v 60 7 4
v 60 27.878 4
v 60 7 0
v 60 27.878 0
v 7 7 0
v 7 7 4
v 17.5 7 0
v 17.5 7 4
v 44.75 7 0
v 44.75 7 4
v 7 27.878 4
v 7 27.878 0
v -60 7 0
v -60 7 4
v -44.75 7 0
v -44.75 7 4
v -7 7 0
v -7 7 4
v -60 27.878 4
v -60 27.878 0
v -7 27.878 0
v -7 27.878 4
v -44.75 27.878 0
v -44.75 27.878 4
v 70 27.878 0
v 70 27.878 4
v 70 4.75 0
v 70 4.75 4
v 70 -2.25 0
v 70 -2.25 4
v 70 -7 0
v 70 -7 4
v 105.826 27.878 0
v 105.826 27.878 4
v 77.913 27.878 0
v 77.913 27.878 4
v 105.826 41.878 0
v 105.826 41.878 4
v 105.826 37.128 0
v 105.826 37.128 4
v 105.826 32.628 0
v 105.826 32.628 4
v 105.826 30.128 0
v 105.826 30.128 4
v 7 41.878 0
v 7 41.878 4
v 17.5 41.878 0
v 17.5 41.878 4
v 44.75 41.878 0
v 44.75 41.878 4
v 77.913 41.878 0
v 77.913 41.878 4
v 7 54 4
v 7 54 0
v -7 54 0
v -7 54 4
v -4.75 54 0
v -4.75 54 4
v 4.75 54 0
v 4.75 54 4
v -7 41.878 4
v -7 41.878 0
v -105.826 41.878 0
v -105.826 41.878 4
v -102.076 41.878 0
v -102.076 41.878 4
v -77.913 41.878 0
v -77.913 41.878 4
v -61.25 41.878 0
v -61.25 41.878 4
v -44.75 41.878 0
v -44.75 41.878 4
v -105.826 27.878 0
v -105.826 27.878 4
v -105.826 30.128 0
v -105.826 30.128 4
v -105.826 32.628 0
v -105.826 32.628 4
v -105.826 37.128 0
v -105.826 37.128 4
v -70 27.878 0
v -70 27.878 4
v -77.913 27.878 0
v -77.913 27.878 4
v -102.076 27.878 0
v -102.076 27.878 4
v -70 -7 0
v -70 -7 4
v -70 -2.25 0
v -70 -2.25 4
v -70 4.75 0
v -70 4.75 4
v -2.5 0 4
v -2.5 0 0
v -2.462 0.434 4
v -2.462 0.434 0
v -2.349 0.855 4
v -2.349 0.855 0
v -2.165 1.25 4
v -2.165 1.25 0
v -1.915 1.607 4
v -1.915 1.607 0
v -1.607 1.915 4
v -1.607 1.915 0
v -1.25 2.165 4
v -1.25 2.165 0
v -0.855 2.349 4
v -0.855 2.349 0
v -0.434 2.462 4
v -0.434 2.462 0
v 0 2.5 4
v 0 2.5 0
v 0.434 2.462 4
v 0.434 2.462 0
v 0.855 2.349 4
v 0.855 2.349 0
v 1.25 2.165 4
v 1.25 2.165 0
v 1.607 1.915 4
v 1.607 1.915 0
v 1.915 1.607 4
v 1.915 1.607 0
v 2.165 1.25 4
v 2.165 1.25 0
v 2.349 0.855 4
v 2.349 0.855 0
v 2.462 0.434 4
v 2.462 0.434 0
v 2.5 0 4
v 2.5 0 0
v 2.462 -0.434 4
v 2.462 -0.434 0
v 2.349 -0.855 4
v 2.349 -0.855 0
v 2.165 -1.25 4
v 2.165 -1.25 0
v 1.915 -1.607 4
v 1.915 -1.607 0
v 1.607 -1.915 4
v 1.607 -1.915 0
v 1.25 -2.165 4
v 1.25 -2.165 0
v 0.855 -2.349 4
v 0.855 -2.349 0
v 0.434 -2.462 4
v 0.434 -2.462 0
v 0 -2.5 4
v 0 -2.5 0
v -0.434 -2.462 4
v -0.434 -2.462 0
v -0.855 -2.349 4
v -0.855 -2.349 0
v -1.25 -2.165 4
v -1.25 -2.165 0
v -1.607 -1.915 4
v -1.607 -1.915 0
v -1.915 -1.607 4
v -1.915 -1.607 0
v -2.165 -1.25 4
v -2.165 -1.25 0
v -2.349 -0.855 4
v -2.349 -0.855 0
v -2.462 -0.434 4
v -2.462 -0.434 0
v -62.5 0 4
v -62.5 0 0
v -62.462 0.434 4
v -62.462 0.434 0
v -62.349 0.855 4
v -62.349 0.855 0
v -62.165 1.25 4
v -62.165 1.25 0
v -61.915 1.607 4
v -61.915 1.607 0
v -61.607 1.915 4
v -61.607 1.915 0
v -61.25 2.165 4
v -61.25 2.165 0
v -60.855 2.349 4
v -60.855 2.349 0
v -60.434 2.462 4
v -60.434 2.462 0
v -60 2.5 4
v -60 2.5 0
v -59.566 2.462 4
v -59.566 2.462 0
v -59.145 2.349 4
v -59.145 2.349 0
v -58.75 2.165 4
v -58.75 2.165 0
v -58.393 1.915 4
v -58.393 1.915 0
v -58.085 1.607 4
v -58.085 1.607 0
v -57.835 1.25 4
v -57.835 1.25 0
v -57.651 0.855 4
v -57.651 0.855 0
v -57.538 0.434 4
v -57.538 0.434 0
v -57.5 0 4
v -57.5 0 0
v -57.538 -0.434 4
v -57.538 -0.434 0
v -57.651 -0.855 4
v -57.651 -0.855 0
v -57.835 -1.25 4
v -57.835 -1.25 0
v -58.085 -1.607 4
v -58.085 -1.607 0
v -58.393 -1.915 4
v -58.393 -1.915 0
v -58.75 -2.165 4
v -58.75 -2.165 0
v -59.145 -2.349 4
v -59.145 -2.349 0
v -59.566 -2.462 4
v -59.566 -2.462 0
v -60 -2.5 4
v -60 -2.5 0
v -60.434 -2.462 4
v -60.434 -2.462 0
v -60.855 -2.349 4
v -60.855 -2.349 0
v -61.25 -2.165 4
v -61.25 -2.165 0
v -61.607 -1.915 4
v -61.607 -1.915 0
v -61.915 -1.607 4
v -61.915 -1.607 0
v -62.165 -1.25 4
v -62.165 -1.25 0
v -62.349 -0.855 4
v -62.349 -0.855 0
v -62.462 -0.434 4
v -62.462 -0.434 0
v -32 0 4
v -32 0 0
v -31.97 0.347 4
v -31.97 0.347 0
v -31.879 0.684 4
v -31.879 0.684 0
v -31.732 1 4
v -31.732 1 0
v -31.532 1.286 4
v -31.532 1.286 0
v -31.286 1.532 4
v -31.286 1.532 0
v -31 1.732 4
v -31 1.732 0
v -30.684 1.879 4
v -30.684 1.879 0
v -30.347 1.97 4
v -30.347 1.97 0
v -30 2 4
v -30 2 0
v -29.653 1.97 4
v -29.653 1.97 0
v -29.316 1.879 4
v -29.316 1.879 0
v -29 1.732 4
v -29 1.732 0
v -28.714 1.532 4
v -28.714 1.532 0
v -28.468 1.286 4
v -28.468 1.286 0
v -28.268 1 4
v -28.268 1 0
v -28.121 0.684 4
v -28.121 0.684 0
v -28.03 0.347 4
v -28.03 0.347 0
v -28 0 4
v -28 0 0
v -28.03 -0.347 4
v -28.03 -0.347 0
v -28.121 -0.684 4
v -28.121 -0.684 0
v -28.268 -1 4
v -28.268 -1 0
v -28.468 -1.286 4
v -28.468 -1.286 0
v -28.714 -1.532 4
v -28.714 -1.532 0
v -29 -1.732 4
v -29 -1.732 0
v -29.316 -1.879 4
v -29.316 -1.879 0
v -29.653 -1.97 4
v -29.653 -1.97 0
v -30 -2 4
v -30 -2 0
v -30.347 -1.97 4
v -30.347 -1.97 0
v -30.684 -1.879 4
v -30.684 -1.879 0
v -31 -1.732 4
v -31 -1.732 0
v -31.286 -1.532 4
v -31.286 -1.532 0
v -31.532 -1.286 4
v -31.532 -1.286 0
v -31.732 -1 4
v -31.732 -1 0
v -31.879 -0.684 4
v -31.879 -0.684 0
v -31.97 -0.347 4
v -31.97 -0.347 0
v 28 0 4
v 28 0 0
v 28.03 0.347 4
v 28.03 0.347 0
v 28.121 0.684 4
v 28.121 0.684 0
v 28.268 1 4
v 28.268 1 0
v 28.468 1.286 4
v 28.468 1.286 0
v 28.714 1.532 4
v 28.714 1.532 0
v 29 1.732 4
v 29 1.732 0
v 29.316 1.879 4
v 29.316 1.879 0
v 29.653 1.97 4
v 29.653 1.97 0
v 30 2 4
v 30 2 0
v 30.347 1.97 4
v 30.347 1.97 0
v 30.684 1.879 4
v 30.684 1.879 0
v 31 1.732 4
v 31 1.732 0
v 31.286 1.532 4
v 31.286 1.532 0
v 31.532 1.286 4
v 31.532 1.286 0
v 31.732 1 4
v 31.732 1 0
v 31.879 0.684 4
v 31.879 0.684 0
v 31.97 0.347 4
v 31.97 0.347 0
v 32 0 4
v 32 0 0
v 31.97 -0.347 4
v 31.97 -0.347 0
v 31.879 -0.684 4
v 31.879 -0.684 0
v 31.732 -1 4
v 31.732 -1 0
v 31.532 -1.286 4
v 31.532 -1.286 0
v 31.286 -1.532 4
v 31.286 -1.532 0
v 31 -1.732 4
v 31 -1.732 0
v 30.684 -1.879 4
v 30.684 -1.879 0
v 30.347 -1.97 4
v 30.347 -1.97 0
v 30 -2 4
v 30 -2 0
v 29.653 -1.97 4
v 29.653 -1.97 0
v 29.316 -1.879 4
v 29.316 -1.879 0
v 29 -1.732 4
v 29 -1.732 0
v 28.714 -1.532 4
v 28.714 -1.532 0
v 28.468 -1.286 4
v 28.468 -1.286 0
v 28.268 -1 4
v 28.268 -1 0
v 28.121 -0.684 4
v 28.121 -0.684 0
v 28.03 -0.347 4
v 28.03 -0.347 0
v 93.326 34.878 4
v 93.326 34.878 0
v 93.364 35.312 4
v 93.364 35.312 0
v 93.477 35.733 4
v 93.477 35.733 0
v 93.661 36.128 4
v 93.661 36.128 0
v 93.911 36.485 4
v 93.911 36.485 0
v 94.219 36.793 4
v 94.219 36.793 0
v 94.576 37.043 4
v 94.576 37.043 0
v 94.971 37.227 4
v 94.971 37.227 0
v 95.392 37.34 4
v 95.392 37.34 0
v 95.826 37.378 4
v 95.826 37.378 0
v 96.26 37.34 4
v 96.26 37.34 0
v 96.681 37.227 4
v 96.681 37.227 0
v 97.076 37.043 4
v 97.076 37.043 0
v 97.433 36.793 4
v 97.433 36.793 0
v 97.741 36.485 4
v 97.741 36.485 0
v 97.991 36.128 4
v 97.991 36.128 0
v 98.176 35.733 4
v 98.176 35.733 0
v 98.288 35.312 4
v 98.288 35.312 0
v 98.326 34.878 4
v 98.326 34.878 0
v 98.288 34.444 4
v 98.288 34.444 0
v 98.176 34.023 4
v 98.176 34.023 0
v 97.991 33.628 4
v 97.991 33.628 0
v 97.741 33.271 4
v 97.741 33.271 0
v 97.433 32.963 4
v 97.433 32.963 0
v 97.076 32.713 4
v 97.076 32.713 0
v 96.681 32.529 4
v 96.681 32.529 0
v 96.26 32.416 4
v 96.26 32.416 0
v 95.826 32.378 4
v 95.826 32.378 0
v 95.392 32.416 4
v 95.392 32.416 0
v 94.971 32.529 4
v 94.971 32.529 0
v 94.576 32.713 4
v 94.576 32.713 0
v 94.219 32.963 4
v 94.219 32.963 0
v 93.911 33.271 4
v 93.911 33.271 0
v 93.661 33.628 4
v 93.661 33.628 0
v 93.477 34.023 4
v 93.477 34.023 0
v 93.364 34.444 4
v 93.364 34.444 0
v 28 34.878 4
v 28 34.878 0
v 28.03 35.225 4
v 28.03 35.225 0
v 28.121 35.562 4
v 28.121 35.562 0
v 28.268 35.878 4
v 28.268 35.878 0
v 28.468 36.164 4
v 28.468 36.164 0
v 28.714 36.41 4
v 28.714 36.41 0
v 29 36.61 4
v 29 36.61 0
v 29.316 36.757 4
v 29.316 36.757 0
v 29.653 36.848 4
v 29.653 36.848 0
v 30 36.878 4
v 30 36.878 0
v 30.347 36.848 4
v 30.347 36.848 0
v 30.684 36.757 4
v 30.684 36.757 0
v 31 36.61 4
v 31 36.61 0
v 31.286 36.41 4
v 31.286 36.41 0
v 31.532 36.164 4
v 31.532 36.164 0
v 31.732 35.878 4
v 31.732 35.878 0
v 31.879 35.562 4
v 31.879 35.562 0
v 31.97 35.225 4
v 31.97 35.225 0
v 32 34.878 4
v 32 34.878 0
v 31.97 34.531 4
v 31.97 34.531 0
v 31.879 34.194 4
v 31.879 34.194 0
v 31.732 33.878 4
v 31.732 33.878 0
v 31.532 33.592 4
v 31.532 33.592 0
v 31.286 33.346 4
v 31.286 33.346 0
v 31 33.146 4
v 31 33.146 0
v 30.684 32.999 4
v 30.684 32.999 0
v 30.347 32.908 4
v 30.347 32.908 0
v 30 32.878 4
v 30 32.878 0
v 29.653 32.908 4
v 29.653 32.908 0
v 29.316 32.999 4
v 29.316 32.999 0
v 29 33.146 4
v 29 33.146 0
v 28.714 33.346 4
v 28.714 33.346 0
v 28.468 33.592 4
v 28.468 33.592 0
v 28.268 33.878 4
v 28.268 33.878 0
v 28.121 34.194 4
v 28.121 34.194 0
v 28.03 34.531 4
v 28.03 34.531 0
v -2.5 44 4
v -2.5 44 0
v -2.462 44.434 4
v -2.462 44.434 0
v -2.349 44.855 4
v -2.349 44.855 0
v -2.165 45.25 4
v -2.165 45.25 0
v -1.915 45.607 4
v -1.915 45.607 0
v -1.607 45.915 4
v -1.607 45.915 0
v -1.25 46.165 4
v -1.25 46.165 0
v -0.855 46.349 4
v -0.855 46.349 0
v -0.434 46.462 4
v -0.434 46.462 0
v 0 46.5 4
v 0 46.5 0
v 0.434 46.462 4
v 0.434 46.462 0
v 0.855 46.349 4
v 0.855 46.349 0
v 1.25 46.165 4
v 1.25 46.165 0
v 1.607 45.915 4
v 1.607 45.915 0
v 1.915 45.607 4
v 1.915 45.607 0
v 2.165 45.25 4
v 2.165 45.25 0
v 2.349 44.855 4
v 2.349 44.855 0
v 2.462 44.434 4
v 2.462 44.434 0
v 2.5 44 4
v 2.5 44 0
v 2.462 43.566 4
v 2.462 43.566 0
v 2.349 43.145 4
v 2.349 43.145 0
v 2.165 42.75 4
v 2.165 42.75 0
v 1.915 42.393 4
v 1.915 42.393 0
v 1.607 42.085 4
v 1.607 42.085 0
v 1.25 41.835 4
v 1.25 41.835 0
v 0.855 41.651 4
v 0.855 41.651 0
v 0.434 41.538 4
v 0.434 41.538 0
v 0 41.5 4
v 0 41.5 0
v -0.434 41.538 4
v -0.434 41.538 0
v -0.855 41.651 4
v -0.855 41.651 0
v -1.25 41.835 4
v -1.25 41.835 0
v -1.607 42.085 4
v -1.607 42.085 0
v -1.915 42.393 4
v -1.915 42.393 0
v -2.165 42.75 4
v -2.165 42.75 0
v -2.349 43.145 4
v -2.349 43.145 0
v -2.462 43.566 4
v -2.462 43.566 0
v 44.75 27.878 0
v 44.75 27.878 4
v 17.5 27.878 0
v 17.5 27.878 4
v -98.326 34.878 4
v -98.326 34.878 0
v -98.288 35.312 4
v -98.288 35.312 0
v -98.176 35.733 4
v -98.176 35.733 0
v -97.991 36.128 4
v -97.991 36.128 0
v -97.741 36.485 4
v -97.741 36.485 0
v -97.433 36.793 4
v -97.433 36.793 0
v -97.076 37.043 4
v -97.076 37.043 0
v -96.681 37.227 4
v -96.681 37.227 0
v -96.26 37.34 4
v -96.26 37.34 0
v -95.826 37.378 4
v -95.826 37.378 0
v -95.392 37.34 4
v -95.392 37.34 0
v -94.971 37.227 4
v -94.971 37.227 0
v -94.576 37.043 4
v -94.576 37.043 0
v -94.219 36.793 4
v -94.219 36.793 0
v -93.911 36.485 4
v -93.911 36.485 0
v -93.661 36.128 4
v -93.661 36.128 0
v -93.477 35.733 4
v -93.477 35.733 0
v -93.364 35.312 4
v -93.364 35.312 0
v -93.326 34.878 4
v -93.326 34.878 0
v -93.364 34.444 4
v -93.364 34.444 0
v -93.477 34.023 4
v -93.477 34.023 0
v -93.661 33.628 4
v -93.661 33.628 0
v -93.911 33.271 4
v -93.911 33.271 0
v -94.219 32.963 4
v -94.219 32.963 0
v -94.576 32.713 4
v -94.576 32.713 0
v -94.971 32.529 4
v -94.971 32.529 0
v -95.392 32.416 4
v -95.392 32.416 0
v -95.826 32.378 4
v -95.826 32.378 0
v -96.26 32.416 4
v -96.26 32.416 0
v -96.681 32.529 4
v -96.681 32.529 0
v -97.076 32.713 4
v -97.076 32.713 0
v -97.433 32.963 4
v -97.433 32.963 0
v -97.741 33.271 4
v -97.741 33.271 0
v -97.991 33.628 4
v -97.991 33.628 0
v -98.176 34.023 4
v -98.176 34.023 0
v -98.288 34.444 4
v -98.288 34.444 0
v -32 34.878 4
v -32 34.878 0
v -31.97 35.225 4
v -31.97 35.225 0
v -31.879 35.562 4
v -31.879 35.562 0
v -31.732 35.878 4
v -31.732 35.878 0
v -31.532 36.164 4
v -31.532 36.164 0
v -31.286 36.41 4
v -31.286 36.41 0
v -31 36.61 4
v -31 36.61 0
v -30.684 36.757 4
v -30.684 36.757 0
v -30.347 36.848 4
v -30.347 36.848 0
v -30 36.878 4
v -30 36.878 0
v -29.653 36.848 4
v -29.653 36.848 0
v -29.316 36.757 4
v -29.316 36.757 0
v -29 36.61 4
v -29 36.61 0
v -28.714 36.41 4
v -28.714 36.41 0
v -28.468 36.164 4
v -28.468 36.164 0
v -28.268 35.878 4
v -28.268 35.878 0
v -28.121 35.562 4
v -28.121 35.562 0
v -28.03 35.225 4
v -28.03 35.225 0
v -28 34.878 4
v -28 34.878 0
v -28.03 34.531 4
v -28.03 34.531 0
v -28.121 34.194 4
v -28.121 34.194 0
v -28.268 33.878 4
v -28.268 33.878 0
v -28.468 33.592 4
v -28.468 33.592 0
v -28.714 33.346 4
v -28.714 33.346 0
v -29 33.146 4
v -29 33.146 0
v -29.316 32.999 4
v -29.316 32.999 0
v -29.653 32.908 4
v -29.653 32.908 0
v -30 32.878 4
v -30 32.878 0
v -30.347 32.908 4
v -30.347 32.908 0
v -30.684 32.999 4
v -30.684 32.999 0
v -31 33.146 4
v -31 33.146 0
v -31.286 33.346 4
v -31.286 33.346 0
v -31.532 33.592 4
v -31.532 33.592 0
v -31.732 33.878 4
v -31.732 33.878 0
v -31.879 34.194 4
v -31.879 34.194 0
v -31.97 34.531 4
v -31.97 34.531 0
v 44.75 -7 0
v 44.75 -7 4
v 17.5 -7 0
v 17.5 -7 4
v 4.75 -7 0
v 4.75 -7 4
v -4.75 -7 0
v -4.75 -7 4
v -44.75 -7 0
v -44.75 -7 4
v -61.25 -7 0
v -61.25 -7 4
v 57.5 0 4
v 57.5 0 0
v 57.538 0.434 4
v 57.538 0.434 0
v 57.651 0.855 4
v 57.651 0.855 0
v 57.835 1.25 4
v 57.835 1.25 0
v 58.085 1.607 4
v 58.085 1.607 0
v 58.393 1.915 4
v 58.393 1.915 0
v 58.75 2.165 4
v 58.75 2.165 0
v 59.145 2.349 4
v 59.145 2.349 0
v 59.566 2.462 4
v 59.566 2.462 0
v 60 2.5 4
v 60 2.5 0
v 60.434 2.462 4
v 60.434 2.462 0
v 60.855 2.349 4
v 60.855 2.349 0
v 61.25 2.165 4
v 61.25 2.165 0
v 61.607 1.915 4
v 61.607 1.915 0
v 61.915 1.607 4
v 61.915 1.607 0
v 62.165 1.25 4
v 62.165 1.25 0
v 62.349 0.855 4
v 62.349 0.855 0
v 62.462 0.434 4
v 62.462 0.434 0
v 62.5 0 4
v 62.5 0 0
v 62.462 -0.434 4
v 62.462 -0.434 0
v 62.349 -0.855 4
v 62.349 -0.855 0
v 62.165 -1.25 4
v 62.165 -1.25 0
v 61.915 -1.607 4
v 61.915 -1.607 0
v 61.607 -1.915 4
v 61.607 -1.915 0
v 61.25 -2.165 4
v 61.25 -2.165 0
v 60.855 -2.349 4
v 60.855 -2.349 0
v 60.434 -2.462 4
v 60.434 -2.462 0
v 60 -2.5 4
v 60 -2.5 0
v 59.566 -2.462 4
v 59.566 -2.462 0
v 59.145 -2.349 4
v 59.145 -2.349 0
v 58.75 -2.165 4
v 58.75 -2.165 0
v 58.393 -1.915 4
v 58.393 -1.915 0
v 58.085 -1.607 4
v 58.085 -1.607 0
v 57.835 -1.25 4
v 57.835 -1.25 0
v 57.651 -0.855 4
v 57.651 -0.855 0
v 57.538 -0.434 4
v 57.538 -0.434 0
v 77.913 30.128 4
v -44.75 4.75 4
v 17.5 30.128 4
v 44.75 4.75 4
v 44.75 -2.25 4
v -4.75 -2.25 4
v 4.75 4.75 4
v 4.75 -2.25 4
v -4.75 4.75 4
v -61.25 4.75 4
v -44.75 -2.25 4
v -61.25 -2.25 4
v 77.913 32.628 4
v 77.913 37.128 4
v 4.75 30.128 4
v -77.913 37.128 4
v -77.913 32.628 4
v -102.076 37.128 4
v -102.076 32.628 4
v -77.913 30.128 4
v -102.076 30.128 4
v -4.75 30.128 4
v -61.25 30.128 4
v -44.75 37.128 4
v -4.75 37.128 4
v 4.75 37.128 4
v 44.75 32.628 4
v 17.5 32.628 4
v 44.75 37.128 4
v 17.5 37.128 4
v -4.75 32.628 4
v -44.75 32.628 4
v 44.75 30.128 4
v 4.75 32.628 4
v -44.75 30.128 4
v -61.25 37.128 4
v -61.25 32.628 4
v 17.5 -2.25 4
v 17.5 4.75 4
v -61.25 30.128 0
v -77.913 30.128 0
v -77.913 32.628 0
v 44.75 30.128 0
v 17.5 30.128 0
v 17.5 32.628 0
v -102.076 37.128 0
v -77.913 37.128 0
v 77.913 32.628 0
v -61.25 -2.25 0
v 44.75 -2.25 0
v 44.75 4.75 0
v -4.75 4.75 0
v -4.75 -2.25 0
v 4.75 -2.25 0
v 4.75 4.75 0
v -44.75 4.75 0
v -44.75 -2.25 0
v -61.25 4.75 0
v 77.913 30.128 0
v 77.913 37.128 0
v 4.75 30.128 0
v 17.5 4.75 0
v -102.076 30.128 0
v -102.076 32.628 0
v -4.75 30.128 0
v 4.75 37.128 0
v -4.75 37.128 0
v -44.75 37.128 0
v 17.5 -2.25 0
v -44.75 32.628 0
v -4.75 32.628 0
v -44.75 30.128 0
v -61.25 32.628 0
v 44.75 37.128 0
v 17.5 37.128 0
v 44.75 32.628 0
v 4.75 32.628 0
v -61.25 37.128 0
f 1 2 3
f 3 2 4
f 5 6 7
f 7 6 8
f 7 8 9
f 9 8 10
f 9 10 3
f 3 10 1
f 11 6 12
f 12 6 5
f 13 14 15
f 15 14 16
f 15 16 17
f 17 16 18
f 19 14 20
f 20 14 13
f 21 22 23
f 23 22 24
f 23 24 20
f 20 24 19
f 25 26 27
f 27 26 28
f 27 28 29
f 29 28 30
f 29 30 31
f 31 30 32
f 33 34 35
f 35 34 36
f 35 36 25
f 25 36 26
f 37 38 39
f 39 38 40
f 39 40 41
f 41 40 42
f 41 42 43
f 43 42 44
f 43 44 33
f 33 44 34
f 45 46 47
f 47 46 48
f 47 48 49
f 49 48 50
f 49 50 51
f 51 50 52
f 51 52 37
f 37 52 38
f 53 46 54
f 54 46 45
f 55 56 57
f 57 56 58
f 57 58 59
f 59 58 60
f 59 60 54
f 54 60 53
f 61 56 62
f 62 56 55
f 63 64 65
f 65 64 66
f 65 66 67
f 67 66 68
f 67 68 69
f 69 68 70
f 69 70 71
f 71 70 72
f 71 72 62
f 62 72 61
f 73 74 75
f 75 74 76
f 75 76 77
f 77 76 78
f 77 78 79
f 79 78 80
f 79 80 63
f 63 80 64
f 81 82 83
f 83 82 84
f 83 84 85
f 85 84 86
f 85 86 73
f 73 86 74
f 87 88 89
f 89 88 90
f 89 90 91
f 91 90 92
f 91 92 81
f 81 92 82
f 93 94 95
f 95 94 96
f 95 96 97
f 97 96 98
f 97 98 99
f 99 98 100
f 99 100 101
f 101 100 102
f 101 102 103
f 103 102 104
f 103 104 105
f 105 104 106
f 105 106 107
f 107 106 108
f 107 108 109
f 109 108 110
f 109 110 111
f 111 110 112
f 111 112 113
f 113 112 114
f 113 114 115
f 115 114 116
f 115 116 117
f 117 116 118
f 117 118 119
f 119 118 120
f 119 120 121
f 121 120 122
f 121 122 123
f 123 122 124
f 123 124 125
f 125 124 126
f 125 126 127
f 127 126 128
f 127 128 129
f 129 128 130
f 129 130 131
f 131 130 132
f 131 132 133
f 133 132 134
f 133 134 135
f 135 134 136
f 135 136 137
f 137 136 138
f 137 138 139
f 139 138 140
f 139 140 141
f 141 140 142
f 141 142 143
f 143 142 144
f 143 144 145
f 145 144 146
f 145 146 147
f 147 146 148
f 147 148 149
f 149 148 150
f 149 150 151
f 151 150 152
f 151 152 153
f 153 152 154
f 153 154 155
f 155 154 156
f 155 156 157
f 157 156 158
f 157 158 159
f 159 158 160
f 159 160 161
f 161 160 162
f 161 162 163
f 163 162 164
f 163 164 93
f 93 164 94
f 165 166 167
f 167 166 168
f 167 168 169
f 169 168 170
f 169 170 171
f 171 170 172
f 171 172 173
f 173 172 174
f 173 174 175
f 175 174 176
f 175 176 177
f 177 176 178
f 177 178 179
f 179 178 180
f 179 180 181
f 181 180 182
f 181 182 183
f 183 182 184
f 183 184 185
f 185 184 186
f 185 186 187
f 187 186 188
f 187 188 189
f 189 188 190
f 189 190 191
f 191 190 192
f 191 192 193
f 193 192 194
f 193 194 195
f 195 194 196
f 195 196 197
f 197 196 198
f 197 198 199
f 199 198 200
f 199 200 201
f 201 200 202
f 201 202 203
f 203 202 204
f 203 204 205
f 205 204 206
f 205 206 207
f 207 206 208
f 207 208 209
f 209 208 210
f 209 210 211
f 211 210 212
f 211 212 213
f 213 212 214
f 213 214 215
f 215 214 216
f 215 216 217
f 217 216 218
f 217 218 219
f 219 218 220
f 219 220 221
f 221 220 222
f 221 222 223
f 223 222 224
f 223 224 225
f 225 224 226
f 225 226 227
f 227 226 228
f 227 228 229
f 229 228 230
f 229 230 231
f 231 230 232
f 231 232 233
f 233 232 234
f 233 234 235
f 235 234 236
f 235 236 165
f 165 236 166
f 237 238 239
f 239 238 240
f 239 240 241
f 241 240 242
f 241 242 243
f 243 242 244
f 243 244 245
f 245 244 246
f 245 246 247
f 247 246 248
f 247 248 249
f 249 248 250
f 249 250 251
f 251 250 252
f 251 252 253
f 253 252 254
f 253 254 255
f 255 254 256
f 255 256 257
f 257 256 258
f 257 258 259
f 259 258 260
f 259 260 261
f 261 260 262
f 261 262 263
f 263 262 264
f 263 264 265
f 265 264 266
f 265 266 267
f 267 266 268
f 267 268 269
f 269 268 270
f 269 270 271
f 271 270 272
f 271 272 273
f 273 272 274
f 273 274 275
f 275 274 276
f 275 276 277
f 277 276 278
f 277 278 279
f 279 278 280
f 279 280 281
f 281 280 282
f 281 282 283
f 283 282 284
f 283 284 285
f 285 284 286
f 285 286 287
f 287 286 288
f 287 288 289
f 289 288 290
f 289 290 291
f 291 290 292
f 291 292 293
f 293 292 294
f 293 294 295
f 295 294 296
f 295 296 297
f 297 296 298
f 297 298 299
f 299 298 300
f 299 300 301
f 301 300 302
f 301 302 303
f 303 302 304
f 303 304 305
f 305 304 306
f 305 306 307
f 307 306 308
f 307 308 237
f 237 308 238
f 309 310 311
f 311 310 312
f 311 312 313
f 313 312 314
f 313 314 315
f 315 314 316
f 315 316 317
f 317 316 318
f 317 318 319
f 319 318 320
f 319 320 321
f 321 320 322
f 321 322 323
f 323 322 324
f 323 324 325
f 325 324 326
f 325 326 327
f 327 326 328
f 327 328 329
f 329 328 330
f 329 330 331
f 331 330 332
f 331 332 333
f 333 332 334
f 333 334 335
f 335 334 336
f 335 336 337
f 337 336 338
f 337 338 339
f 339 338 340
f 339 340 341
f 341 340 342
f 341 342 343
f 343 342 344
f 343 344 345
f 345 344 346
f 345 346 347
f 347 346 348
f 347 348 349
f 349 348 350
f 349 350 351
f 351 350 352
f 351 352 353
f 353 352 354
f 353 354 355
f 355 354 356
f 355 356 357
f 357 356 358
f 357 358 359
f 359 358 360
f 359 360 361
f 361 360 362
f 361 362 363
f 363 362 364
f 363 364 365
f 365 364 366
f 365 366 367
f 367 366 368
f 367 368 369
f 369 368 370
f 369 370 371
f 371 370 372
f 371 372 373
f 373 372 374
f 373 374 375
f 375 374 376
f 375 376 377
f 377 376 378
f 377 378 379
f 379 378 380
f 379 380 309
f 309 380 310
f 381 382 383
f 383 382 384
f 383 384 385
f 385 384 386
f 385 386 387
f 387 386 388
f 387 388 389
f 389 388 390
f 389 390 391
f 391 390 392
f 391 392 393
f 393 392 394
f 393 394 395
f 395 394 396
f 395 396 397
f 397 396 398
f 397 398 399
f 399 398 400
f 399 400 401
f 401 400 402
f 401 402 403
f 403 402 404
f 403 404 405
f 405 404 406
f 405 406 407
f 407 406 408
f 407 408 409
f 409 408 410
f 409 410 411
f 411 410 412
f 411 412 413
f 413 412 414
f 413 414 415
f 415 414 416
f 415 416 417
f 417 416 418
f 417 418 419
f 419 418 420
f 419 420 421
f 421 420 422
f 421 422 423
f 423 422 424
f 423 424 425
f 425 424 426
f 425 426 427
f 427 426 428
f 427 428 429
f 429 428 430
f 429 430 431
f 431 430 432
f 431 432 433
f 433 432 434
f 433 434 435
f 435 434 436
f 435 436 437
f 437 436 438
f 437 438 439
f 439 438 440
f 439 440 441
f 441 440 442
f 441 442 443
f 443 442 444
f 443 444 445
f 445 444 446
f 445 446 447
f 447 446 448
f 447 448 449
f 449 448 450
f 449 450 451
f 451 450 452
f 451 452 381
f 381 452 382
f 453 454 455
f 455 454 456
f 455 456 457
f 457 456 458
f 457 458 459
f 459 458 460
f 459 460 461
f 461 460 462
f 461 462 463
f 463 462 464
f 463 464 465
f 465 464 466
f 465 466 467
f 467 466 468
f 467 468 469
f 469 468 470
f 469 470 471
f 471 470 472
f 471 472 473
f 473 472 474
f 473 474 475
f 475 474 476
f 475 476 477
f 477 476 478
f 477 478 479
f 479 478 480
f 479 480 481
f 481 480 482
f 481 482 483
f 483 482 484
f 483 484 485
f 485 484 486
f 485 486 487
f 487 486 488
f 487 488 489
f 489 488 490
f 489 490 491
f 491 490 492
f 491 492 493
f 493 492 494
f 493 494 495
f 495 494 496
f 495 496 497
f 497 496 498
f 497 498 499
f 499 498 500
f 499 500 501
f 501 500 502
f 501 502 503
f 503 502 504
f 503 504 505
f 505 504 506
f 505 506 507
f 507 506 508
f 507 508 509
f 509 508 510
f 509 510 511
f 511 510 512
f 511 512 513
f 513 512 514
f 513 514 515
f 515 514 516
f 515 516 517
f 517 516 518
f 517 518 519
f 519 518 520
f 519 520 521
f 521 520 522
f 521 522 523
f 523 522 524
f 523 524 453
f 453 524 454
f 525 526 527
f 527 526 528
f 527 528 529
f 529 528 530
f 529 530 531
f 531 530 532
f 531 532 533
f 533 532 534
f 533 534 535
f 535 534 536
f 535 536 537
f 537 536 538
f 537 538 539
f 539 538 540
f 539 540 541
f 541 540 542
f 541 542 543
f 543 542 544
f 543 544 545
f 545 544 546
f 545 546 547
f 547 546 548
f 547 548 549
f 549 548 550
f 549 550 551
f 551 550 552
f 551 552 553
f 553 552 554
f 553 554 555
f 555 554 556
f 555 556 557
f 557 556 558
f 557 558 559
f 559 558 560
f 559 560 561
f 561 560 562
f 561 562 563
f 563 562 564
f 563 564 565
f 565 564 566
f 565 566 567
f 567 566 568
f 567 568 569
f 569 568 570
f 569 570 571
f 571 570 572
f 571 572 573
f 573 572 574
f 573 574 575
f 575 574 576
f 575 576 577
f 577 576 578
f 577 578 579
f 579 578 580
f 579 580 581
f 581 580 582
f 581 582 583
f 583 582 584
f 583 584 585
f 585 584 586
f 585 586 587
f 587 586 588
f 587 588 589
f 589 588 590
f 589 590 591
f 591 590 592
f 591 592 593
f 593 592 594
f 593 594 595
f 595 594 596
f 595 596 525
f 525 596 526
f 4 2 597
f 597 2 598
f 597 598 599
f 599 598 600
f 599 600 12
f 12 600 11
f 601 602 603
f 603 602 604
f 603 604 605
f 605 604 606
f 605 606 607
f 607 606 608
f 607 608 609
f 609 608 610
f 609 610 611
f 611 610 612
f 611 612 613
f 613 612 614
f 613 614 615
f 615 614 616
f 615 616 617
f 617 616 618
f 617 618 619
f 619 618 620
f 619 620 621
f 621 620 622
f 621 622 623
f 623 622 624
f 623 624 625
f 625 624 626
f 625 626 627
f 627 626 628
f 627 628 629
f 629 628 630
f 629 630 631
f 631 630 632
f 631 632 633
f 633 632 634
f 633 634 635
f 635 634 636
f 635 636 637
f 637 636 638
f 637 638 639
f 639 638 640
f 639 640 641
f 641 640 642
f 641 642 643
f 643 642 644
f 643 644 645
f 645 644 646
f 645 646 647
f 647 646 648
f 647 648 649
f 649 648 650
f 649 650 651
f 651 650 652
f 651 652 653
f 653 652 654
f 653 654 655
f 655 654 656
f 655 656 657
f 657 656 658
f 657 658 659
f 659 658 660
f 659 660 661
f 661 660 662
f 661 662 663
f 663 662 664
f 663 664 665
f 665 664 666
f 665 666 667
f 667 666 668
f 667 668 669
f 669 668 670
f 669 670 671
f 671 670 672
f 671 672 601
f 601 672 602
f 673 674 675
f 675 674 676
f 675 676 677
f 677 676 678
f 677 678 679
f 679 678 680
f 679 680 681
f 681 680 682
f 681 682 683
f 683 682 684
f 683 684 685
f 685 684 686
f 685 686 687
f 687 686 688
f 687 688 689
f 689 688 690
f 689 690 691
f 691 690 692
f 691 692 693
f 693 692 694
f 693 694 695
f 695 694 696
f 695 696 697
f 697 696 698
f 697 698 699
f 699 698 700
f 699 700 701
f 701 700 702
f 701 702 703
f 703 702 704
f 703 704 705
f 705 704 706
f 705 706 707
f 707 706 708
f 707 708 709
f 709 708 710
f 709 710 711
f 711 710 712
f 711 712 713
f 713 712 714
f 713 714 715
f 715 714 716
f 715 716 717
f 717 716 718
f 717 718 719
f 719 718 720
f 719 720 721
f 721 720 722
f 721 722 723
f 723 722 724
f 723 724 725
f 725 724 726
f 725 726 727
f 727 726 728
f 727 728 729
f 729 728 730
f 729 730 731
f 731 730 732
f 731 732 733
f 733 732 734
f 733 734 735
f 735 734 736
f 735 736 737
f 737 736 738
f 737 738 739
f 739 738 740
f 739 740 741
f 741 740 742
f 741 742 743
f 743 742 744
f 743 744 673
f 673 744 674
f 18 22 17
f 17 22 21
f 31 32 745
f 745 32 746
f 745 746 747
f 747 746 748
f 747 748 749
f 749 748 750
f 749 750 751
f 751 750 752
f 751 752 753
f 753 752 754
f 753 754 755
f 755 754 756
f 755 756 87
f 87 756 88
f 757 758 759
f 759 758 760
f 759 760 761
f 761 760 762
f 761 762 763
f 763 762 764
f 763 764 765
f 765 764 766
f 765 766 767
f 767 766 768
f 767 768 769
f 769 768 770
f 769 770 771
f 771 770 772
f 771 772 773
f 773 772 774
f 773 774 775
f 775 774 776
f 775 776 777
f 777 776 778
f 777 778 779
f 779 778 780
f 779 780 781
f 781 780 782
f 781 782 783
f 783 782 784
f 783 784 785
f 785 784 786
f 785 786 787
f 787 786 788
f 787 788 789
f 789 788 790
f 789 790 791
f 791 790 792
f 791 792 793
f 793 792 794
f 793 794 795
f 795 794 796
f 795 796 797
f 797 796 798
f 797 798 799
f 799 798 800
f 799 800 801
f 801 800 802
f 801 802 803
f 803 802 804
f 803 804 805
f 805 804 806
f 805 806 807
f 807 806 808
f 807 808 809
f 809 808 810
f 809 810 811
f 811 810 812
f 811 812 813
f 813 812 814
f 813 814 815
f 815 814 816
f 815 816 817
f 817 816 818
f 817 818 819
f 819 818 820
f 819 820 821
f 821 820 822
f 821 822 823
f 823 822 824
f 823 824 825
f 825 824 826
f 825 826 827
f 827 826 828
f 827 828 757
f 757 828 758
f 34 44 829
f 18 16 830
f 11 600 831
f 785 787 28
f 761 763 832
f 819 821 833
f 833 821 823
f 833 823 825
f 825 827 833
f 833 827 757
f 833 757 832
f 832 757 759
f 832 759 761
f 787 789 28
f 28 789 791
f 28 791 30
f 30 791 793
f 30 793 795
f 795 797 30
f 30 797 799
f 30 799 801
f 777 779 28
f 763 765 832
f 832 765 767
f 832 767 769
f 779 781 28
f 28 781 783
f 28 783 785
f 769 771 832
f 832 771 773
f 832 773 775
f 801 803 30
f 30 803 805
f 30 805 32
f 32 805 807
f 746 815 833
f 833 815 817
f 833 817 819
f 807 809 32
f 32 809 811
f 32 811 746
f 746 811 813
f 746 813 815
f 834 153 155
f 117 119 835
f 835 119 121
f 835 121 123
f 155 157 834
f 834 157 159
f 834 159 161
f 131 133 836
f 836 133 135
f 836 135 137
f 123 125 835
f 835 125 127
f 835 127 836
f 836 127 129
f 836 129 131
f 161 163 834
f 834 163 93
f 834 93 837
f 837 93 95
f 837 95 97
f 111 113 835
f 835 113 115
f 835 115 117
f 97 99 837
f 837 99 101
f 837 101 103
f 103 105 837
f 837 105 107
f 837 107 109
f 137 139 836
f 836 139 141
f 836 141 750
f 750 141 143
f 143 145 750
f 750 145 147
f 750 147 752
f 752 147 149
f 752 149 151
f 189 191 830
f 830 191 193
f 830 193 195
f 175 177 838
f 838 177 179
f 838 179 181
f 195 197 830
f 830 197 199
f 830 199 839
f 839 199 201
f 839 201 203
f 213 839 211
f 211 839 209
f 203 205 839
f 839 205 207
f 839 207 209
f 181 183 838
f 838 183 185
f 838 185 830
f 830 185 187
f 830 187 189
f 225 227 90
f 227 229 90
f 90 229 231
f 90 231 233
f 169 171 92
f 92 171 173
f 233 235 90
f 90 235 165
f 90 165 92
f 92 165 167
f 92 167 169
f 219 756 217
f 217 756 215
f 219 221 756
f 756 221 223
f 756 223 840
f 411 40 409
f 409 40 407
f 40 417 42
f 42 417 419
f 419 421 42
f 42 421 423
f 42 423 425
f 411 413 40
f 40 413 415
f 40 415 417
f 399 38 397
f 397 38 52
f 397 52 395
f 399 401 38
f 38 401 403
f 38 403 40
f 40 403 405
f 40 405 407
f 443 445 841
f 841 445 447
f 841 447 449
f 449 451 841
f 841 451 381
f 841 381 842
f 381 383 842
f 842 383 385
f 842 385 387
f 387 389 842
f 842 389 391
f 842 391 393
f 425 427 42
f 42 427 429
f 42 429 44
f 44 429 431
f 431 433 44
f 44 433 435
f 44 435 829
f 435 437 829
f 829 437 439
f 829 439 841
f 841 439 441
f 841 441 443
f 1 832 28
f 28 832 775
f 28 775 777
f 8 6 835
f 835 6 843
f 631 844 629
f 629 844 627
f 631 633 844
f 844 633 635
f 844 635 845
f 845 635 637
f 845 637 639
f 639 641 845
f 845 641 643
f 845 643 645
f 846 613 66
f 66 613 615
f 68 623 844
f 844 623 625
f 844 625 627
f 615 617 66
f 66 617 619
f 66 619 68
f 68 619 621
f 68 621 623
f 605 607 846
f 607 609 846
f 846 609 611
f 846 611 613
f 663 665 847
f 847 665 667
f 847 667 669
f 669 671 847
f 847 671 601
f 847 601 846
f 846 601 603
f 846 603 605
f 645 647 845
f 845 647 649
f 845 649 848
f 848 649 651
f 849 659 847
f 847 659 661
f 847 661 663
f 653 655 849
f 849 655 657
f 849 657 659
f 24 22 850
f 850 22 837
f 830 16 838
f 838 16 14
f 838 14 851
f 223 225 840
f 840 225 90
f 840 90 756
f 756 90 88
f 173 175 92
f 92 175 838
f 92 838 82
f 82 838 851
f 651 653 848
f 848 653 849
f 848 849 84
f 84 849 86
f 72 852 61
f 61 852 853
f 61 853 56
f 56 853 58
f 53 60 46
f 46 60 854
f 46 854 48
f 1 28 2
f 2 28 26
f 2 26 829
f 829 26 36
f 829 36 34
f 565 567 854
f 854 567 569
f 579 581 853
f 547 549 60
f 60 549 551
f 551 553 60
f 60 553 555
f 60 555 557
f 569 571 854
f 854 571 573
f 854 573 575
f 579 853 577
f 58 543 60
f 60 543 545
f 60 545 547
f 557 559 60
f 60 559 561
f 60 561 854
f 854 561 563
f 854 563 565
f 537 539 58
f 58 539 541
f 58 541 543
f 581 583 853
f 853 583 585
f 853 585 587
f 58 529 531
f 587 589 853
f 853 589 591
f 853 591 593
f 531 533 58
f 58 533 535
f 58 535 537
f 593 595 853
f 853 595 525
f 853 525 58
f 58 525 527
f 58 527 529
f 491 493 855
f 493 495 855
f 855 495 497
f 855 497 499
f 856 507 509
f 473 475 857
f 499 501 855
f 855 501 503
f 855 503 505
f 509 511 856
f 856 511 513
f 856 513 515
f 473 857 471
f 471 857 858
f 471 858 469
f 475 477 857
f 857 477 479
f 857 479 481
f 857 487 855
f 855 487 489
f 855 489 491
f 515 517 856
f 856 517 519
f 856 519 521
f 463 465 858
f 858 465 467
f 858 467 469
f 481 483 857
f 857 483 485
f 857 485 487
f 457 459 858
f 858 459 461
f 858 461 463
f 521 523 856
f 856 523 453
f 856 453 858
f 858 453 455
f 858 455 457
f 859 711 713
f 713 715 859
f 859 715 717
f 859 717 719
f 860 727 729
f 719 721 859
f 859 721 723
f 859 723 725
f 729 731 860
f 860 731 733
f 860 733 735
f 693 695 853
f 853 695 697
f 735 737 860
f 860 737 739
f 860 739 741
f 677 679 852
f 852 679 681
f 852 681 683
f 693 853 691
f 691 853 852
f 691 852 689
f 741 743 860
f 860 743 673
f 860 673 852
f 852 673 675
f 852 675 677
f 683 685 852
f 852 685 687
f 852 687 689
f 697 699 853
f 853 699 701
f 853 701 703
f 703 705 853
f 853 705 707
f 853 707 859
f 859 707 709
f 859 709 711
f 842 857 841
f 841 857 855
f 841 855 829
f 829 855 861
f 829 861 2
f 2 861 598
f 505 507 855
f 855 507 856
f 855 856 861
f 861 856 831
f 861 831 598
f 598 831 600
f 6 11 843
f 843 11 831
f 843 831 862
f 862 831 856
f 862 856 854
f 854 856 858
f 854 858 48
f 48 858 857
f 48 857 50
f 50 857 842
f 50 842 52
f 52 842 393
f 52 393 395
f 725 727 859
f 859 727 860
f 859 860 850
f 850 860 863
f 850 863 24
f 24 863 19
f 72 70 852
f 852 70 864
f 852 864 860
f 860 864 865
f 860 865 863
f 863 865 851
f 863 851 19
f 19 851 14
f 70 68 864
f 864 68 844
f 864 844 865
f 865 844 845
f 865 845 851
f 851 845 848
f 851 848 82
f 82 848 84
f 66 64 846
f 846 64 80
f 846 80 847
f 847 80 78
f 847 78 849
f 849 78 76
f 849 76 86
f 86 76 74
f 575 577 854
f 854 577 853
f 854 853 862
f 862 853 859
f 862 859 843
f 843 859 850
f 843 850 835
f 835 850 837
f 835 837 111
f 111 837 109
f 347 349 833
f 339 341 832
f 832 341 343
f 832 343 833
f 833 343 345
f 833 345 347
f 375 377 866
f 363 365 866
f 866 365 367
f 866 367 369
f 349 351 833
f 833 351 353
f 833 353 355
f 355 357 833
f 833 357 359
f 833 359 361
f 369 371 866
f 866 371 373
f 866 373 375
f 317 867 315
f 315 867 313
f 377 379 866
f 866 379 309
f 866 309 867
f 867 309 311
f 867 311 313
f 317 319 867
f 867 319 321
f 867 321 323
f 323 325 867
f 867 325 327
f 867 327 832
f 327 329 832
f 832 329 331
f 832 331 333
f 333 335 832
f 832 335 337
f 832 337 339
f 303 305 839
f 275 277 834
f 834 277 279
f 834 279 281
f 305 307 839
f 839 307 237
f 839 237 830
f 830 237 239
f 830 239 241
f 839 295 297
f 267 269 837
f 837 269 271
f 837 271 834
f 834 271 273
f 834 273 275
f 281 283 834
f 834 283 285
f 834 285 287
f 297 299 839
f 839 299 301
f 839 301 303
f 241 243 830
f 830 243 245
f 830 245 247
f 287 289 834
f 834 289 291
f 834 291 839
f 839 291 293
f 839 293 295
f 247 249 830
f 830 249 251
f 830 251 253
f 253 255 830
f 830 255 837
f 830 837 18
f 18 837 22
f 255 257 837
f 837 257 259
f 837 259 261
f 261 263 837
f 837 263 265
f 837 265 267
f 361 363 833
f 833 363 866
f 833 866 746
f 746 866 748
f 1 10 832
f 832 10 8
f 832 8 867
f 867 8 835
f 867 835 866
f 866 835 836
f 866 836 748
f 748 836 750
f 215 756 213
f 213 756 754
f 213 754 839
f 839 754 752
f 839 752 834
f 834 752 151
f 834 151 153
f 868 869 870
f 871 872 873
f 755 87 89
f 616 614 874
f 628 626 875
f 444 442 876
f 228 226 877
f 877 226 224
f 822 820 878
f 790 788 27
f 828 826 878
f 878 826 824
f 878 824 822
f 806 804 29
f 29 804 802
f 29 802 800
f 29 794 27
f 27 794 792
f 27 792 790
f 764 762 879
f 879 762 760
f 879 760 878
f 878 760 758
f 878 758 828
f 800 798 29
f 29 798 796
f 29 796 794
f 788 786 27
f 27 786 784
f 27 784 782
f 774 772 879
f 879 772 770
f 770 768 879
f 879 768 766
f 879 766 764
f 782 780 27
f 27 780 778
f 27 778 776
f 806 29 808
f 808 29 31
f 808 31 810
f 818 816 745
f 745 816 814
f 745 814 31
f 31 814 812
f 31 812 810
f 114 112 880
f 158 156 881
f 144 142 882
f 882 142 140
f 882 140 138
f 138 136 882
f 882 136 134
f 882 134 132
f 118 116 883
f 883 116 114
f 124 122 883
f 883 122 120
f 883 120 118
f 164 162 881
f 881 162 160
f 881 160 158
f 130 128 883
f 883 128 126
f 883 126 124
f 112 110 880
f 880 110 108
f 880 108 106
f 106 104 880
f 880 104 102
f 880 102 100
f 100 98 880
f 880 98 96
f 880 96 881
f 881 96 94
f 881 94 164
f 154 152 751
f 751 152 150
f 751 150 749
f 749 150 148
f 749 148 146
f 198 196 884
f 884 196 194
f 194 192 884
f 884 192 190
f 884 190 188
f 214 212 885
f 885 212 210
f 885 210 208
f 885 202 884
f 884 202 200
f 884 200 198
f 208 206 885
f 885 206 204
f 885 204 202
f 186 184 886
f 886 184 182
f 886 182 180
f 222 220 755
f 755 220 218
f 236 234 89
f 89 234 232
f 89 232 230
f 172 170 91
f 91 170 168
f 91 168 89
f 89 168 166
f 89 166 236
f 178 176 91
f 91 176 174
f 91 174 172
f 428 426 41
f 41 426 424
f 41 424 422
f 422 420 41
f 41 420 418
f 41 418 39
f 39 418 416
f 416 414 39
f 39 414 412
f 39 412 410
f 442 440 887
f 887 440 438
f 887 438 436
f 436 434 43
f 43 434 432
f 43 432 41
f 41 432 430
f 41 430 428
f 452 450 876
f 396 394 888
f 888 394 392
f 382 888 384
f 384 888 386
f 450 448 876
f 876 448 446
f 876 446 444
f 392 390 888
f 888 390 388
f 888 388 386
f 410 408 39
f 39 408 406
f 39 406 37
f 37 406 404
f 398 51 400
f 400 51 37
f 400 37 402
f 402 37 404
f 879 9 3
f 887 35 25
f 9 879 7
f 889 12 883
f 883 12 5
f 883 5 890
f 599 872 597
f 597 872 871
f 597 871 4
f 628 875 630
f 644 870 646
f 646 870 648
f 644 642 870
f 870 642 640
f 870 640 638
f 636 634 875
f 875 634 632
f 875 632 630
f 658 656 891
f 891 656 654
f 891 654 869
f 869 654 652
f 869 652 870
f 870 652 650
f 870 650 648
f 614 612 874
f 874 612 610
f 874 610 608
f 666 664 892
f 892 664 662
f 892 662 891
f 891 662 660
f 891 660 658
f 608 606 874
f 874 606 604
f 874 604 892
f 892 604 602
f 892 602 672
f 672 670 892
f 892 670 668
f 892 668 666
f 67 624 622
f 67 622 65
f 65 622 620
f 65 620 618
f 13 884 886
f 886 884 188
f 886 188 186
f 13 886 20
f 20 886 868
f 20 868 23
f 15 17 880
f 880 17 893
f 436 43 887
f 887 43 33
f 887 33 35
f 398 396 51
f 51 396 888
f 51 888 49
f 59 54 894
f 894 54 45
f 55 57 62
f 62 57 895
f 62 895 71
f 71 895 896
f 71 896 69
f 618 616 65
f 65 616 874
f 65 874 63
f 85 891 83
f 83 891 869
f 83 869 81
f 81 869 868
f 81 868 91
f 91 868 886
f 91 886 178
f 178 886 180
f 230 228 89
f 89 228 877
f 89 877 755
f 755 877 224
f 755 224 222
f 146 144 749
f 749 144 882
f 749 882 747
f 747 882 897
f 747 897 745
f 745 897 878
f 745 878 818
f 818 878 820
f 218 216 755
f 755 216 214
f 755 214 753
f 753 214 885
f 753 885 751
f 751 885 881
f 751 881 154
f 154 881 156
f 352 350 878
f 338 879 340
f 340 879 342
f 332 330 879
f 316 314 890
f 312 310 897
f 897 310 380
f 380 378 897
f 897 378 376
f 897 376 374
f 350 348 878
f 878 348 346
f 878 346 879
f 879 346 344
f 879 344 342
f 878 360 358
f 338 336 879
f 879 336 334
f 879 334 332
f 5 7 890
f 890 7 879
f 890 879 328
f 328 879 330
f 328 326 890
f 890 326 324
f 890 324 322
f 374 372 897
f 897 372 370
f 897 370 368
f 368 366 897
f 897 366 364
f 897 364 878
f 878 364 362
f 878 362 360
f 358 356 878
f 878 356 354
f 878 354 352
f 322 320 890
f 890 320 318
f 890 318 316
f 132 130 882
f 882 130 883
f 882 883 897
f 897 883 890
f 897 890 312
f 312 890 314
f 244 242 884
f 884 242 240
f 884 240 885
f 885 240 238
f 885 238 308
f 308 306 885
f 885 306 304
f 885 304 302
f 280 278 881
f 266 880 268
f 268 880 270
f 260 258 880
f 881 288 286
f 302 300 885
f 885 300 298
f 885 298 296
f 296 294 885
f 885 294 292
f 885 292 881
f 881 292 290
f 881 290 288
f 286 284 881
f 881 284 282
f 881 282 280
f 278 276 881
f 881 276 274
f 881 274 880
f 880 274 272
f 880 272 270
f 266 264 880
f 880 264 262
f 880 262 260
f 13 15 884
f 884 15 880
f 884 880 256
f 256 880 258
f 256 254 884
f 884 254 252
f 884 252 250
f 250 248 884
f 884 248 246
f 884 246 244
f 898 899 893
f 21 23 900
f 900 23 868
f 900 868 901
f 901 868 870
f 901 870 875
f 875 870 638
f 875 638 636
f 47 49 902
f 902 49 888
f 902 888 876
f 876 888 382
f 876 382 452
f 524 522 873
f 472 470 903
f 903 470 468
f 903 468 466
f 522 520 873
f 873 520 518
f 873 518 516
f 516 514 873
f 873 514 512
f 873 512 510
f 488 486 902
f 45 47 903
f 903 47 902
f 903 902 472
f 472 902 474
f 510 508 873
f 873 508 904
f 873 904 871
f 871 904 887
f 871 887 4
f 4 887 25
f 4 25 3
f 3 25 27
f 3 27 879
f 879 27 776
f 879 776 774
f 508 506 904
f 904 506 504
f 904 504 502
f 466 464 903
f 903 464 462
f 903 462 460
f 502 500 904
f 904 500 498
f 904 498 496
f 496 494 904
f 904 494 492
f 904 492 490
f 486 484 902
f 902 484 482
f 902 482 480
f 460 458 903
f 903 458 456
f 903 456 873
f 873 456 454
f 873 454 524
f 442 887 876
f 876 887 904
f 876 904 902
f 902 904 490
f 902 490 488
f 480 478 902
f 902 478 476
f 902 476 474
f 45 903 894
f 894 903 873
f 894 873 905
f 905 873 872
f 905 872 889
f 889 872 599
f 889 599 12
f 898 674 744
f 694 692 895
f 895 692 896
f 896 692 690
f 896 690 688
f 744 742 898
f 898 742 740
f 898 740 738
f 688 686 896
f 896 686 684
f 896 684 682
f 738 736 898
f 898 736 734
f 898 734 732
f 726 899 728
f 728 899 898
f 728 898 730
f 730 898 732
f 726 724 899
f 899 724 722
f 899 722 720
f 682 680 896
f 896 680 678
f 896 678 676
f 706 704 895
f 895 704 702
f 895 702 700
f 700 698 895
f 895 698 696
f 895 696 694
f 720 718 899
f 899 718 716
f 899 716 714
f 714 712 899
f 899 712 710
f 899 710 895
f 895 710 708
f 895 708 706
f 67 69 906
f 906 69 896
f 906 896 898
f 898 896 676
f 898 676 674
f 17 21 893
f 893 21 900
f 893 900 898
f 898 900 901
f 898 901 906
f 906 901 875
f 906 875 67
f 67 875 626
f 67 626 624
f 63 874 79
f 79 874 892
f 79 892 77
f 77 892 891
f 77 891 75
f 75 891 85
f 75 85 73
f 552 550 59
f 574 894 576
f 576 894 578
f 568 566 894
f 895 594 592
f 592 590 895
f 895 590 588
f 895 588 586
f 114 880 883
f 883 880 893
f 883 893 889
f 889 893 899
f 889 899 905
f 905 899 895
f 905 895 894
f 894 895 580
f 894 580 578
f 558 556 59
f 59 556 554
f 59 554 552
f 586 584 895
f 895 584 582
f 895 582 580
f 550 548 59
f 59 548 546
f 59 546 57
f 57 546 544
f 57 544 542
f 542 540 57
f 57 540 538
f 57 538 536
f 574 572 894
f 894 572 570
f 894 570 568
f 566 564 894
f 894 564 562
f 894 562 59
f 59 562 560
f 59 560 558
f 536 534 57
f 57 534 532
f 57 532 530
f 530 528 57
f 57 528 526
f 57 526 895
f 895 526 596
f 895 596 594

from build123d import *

# Parameters (mm, degrees)
SKETCH1_R           = 2.5
SKETCH1_R_2         = 2
SKETCH1_W           = 10
SKETCH1_H           = 20.877946607
SKETCH1_W_2         = 140
SKETCH1_H_2         = 14
BOSS_EXTRUDE1_DEPTH = 4


with BuildPart() as part:
    # Sketch1 → Boss-Extrude1 (new body)
    # profile 1 of 6: a face of its own
    with BuildSketch(Plane.XY):
        Polygon((-105.826370741, 27.877946607), (-70, 27.877946607), (-60, 27.877946607), (-7, 27.877946607), (-7, 41.877946607), (-105.826370741, 41.877946607), align=None)
        with Locations((-95.826370741, 34.877946607)):
            Circle(SKETCH1_R, mode=Mode.SUBTRACT)
        with Locations((-30, 34.877946607)):
            Circle(SKETCH1_R_2, mode=Mode.SUBTRACT)
    # profile 2 of 6: a face of its own
    with BuildSketch(Plane.XY):
        with Locations((-65, 17.438973303)):
            Rectangle(SKETCH1_W, SKETCH1_H)
    # profile 3 of 6: a face of its own
    with BuildSketch(Plane.XY):
        Rectangle(SKETCH1_W_2, SKETCH1_H_2)
        with Locations((30, 0)):
            Circle(SKETCH1_R_2, mode=Mode.SUBTRACT)
        with Locations((-30, 0)):
            Circle(SKETCH1_R_2, mode=Mode.SUBTRACT)
        with Locations((-60, 0)):
            Circle(SKETCH1_R, mode=Mode.SUBTRACT)
        Circle(SKETCH1_R, mode=Mode.SUBTRACT)
        with Locations((60, 0)):
            Circle(SKETCH1_R, mode=Mode.SUBTRACT)
    # profile 4 of 6: a face of its own
    with BuildSketch(Plane.XY):
        Polygon((-7, 27.877946607), (-7, 7), (7, 7), (7, 27.877946607), (7, 41.877946607), (7, 54), (-7, 54), (-7, 41.877946607), align=None)
        with Locations((0, 44)):
            Circle(SKETCH1_R, mode=Mode.SUBTRACT)
    # profile 5 of 6: a face of its own
    with BuildSketch(Plane.XY):
        Polygon((7, 41.877946607), (7, 27.877946607), (60, 27.877946607), (70, 27.877946607), (105.826370741, 27.877946607), (105.826370741, 41.877946607), align=None)
        with Locations((30, 34.877946607)):
            Circle(SKETCH1_R_2, mode=Mode.SUBTRACT)
        with Locations((95.826370741, 34.877946607)):
            Circle(SKETCH1_R, mode=Mode.SUBTRACT)
    # profile 6 of 6: a face of its own
    with BuildSketch(Plane.XY):
        with Locations((65, 17.438973303)):
            Rectangle(SKETCH1_W, SKETCH1_H)
    extrude(amount=BOSS_EXTRUDE1_DEPTH)


solid = part.part
